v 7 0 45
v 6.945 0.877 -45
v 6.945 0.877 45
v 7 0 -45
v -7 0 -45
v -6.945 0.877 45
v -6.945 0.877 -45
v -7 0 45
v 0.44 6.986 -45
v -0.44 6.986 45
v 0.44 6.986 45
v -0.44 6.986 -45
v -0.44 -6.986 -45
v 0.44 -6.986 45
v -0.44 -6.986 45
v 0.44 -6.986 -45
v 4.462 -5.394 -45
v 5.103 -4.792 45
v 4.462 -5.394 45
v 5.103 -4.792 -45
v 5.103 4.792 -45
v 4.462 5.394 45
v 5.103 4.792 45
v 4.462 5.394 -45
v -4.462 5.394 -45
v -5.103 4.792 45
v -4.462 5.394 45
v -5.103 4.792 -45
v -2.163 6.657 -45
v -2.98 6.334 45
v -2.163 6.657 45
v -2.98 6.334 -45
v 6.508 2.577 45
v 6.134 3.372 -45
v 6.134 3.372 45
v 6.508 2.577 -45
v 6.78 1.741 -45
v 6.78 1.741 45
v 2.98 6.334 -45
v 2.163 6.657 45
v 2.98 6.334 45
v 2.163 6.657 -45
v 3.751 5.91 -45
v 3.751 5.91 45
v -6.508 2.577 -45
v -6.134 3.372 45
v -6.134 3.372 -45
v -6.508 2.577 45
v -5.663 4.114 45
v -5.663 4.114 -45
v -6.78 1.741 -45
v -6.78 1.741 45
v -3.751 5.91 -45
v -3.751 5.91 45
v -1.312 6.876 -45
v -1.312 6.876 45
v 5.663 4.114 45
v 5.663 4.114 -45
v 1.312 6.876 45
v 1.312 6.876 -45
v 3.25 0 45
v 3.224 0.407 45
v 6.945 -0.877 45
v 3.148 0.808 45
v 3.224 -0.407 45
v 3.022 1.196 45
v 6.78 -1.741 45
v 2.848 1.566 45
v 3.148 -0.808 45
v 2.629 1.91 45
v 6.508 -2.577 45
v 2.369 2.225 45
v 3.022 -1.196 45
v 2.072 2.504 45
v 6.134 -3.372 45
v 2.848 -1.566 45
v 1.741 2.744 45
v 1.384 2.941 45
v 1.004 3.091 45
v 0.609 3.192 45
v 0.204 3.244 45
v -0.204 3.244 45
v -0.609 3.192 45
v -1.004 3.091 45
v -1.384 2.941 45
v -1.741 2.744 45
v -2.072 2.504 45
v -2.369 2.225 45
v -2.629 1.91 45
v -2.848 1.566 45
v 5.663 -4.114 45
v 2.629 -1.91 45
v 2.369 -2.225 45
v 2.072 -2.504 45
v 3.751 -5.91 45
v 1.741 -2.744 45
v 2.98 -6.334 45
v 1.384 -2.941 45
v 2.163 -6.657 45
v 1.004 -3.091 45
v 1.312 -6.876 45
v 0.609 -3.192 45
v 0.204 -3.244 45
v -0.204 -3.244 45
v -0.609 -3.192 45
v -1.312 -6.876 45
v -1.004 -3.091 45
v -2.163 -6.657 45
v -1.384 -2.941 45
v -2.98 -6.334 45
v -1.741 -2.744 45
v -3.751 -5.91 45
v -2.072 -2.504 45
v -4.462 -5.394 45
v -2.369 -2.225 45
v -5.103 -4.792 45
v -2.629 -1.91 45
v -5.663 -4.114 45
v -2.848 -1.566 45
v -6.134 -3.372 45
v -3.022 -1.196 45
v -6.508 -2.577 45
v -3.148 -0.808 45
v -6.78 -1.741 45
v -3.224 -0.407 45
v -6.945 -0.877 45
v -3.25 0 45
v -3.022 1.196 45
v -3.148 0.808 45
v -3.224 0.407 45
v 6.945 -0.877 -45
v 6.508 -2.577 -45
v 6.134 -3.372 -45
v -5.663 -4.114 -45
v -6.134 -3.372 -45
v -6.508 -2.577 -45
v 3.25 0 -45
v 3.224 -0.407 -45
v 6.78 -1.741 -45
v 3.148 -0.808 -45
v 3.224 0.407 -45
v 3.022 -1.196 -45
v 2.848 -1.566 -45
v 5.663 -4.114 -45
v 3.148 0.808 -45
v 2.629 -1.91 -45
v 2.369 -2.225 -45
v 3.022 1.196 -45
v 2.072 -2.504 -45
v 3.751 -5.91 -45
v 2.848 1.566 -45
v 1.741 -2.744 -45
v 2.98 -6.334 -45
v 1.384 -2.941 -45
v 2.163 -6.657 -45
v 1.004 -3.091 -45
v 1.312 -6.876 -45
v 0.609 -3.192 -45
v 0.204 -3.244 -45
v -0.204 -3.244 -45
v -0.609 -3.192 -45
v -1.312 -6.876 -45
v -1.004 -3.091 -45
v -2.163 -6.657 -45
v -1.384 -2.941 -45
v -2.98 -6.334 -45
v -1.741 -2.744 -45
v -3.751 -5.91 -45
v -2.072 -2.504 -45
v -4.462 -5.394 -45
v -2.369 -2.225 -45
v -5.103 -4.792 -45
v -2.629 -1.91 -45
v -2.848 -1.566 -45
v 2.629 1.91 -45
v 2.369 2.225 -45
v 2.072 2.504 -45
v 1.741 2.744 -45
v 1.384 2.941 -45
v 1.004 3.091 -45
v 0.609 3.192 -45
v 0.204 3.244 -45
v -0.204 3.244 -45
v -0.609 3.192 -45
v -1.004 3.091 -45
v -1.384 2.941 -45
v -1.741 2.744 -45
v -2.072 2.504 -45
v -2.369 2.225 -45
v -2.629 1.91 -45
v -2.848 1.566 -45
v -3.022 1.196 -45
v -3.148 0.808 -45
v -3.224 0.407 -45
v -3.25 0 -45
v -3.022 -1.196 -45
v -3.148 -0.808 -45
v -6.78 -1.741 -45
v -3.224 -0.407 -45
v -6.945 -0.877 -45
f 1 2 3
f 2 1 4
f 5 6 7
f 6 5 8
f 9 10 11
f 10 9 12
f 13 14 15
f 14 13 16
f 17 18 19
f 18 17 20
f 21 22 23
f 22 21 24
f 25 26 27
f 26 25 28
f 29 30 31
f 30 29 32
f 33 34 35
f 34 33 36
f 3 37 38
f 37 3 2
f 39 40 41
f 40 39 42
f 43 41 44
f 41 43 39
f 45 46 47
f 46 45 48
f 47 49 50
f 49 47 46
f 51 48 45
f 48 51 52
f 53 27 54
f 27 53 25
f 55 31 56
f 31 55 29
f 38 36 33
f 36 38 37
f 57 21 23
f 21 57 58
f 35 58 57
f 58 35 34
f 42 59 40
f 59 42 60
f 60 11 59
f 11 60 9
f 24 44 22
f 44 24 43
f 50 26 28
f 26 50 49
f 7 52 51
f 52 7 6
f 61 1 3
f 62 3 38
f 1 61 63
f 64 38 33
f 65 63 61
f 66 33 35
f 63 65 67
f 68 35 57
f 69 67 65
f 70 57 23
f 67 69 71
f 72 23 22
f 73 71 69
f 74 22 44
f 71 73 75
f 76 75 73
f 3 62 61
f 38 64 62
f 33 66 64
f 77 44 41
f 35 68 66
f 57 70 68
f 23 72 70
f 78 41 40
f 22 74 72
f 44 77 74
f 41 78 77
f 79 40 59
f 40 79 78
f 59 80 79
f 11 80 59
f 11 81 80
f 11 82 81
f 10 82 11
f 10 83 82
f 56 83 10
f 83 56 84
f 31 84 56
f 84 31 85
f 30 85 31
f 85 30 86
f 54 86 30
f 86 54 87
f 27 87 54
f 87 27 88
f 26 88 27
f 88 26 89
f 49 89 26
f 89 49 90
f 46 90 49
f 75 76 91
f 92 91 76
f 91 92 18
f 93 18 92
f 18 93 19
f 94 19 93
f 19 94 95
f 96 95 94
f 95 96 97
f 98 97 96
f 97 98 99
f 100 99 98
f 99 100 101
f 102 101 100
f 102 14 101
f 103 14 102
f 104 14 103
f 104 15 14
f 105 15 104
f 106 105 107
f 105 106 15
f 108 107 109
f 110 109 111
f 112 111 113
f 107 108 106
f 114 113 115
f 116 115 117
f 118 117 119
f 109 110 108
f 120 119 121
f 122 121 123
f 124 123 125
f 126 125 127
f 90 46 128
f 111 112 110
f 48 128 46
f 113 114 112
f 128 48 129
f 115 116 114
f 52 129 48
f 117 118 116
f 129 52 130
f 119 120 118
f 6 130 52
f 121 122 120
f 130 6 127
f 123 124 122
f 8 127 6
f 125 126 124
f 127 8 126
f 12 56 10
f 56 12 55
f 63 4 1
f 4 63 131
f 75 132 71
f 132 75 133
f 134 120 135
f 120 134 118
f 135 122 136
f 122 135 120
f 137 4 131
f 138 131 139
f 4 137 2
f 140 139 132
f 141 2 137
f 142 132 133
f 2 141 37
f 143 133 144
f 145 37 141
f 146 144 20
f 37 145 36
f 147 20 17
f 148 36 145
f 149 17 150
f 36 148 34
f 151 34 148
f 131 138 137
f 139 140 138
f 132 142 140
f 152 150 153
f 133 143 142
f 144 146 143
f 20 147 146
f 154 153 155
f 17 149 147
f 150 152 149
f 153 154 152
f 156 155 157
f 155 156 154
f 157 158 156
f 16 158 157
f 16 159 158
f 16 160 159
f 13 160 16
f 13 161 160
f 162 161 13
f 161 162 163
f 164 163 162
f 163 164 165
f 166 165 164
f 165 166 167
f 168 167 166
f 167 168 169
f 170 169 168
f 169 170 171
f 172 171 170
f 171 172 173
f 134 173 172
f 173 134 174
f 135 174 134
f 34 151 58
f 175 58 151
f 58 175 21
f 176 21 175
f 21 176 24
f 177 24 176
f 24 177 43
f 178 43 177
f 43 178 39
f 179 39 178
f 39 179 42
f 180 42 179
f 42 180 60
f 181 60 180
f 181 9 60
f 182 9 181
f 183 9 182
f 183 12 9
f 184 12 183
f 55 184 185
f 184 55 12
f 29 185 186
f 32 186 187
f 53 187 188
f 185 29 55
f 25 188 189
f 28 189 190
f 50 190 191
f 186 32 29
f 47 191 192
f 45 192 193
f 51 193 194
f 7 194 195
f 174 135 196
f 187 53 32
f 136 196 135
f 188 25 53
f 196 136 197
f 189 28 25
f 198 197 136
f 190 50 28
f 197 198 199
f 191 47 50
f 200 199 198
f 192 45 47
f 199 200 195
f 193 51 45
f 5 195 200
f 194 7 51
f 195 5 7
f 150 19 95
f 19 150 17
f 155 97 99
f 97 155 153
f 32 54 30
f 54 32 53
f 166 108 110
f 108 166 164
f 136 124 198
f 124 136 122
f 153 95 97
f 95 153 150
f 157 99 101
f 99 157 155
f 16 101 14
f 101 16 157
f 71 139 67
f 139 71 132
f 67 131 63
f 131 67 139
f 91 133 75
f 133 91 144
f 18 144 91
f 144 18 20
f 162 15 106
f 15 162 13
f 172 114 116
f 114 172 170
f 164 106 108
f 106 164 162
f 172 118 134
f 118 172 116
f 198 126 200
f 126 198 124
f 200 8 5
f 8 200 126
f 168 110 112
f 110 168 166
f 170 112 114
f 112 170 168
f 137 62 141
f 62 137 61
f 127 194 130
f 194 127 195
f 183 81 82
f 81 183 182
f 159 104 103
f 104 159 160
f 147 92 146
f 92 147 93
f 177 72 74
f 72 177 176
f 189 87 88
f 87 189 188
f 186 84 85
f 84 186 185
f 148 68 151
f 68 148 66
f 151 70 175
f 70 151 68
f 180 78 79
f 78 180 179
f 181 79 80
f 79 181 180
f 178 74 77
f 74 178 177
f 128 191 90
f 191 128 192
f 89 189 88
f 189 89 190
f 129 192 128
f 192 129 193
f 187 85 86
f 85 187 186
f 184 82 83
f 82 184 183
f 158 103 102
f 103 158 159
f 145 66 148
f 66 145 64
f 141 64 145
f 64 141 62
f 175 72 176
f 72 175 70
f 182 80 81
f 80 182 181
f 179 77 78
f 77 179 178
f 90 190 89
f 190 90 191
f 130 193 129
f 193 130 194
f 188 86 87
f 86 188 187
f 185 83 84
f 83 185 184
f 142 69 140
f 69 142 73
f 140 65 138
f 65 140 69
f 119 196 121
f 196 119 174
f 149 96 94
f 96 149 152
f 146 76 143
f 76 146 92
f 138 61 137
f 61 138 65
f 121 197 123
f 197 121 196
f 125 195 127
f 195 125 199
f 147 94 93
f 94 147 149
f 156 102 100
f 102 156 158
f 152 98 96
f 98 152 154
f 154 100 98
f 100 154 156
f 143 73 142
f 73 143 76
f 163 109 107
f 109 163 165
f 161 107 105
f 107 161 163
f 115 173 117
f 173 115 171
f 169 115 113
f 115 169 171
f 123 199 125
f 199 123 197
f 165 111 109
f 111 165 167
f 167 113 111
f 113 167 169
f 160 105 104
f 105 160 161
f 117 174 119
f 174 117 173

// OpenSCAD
$fn = 50;


difference() {
	union() {
		translate(v = [0, 0, -45.0000000000]) {
			cylinder(h = 90, r = 7.0000000000);
		}
	}
	union() {
		translate(v = [0, 0, -100.0000000000]) {
			cylinder(h = 200, r = 3.2500000000);
		}
	}
}
